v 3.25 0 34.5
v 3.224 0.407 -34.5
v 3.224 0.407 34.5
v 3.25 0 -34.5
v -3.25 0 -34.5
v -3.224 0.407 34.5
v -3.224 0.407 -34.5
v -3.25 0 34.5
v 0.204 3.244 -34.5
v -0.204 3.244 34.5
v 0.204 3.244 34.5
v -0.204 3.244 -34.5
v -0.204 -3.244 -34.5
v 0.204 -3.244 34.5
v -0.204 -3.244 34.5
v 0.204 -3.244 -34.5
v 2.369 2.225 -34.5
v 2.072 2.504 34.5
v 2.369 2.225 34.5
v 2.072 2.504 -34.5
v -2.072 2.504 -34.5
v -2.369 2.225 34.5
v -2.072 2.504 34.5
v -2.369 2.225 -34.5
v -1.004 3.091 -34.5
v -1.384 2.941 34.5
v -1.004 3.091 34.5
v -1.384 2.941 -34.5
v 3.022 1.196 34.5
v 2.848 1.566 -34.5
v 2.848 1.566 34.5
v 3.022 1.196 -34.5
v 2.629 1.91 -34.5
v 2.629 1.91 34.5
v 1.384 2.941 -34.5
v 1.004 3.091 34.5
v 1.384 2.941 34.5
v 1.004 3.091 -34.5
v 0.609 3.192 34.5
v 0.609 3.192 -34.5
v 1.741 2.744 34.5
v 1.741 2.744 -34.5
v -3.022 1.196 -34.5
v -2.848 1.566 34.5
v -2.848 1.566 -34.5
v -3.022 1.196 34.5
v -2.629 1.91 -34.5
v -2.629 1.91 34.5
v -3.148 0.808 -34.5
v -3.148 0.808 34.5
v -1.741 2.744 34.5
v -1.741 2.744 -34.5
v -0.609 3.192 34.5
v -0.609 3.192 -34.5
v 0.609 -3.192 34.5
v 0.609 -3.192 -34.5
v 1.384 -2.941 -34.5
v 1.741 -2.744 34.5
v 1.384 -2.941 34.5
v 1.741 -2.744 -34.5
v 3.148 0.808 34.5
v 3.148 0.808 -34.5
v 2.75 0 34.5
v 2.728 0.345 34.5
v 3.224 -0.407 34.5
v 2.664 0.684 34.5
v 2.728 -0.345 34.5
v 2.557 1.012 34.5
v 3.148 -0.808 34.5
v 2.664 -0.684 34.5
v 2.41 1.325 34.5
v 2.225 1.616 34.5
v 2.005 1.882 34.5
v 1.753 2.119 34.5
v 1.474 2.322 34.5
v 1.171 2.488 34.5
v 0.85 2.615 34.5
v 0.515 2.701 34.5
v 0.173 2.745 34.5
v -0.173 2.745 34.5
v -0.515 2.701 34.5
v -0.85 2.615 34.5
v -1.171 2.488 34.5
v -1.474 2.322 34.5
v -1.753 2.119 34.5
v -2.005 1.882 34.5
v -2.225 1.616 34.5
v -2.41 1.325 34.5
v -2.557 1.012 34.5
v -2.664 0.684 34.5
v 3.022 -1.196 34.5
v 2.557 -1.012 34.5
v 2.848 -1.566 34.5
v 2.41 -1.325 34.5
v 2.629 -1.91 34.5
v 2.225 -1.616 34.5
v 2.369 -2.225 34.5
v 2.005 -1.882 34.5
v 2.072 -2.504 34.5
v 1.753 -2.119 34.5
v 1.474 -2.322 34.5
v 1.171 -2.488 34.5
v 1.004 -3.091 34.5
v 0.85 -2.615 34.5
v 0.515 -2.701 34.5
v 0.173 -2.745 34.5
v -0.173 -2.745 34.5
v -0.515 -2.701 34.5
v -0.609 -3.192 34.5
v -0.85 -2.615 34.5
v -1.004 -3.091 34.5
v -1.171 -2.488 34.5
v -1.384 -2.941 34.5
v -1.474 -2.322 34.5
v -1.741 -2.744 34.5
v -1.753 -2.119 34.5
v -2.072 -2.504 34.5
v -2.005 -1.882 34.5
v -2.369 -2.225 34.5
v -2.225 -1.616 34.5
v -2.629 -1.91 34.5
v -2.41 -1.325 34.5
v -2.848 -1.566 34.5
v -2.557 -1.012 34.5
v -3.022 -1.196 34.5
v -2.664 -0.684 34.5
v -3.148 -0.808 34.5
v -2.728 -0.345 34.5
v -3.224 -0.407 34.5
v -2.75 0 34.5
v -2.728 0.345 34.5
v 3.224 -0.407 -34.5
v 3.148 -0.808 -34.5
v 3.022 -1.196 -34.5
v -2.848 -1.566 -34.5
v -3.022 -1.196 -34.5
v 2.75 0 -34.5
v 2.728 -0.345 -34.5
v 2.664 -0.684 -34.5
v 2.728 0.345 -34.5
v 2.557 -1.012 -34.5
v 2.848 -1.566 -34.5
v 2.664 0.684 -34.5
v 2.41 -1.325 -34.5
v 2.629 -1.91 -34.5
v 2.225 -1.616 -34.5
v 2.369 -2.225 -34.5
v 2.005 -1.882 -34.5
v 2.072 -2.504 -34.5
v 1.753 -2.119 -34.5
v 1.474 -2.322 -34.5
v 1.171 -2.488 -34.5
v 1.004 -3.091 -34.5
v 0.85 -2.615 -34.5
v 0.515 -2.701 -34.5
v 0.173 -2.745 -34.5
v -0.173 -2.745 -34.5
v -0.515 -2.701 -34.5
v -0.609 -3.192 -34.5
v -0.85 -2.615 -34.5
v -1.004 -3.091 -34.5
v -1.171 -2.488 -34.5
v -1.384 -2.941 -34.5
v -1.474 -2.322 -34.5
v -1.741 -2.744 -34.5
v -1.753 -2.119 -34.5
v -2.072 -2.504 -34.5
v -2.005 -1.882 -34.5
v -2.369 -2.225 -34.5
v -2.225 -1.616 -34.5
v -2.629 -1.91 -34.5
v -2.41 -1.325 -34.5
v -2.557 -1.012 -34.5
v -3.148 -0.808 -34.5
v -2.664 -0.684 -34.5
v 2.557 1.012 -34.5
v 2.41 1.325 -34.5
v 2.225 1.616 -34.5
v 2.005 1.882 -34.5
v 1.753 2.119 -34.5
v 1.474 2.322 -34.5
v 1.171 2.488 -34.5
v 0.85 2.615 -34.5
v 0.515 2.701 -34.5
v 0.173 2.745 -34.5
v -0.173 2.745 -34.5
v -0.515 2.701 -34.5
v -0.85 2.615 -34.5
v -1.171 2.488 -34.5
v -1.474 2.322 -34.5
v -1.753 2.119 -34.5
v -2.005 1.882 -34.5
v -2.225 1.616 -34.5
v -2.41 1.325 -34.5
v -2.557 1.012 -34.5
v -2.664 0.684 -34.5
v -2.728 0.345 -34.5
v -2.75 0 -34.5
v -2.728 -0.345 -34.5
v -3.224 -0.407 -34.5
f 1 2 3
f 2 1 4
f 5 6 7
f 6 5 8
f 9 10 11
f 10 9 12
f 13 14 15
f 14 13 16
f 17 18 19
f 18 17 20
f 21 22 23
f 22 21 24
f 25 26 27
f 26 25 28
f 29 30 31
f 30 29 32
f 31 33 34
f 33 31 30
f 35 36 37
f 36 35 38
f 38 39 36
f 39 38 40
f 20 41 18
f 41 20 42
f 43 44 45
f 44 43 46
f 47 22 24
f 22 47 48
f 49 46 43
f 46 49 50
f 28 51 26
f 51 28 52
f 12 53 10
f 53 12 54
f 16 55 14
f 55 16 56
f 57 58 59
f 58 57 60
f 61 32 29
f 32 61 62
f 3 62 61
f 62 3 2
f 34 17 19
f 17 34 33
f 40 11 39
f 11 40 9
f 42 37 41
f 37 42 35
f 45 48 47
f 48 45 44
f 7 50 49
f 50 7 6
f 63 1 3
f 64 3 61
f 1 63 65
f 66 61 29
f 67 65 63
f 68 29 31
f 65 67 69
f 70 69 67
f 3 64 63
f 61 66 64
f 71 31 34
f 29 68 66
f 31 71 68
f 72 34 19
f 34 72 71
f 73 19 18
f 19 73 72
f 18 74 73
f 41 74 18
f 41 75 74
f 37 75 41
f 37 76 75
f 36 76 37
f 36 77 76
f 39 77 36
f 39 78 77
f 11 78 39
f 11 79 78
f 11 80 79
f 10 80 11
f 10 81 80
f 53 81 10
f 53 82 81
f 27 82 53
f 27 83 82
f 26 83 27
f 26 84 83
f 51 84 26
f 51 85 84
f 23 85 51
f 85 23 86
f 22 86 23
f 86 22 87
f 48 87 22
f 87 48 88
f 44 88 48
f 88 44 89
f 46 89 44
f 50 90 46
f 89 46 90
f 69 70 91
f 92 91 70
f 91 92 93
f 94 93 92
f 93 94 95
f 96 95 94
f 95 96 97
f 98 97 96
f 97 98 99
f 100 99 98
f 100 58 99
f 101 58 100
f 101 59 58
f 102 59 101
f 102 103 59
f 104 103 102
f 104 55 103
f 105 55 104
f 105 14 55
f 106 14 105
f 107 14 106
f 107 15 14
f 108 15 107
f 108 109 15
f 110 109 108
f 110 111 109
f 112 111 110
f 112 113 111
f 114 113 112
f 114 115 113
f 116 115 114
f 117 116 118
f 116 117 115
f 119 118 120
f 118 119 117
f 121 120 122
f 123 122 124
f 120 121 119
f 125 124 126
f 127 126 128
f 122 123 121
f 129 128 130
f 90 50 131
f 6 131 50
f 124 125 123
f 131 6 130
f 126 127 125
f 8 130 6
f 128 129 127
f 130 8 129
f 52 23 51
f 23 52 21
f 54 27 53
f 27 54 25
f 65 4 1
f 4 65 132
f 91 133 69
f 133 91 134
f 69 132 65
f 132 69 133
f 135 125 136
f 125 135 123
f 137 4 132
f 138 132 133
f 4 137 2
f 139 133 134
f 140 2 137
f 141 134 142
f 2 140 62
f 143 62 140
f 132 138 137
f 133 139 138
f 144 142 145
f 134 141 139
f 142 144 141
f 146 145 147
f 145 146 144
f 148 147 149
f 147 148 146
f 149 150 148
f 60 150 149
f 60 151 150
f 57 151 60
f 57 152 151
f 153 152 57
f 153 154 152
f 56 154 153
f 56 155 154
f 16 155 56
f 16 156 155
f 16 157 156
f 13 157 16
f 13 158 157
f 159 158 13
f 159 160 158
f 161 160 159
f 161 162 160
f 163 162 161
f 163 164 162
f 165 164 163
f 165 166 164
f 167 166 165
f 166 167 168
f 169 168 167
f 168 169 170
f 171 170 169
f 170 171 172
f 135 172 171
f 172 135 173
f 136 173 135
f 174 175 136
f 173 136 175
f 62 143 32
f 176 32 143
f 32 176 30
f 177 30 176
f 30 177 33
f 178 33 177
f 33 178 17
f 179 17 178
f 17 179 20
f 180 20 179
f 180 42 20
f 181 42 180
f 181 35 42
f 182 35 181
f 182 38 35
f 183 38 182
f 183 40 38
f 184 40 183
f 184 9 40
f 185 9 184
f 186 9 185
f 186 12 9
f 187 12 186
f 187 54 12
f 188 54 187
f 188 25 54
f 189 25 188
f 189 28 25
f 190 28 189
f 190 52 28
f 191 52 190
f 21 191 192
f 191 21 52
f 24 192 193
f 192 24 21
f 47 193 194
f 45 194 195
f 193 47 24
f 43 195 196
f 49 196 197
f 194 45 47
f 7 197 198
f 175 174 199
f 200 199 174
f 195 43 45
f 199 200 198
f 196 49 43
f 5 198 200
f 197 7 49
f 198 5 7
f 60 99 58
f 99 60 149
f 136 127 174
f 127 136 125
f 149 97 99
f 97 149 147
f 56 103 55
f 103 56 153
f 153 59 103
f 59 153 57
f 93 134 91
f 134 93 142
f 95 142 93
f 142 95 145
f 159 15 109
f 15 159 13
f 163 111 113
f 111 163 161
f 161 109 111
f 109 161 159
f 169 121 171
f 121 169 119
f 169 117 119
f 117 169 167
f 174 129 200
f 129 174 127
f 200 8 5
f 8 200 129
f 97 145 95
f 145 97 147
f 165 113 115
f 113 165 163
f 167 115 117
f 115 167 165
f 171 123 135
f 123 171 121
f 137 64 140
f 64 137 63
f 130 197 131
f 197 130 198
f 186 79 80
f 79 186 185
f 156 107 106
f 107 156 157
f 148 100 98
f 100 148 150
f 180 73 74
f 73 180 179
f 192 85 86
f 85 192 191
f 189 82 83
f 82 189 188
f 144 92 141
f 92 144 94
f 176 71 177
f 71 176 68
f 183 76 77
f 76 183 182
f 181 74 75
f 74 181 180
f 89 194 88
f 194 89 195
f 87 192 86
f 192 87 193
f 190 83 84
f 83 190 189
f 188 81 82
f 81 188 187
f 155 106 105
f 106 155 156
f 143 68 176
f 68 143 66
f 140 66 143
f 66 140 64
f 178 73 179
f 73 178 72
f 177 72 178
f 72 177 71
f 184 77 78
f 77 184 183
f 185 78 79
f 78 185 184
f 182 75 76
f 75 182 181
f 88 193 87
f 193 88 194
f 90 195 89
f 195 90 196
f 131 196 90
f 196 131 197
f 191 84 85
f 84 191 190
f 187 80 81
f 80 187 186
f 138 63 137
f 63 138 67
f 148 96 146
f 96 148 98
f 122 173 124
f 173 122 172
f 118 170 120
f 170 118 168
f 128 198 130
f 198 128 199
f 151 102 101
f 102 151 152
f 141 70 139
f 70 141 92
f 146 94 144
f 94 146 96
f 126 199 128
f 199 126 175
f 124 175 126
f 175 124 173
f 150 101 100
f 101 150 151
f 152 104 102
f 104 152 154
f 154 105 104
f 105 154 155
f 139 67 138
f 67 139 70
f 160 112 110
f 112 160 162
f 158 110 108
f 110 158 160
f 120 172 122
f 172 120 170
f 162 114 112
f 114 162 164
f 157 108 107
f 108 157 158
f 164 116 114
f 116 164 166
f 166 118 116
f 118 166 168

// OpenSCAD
$fn = 50;


difference() {
	union() {
		translate(v = [0, 0, -34.5000000000]) {
			cylinder(h = 69, r = 3.2500000000);
		}
	}
	union() {
		translate(v = [0, 0, -100.0000000000]) {
			cylinder(h = 200, r = 2.7500000000);
		}
	}
}
